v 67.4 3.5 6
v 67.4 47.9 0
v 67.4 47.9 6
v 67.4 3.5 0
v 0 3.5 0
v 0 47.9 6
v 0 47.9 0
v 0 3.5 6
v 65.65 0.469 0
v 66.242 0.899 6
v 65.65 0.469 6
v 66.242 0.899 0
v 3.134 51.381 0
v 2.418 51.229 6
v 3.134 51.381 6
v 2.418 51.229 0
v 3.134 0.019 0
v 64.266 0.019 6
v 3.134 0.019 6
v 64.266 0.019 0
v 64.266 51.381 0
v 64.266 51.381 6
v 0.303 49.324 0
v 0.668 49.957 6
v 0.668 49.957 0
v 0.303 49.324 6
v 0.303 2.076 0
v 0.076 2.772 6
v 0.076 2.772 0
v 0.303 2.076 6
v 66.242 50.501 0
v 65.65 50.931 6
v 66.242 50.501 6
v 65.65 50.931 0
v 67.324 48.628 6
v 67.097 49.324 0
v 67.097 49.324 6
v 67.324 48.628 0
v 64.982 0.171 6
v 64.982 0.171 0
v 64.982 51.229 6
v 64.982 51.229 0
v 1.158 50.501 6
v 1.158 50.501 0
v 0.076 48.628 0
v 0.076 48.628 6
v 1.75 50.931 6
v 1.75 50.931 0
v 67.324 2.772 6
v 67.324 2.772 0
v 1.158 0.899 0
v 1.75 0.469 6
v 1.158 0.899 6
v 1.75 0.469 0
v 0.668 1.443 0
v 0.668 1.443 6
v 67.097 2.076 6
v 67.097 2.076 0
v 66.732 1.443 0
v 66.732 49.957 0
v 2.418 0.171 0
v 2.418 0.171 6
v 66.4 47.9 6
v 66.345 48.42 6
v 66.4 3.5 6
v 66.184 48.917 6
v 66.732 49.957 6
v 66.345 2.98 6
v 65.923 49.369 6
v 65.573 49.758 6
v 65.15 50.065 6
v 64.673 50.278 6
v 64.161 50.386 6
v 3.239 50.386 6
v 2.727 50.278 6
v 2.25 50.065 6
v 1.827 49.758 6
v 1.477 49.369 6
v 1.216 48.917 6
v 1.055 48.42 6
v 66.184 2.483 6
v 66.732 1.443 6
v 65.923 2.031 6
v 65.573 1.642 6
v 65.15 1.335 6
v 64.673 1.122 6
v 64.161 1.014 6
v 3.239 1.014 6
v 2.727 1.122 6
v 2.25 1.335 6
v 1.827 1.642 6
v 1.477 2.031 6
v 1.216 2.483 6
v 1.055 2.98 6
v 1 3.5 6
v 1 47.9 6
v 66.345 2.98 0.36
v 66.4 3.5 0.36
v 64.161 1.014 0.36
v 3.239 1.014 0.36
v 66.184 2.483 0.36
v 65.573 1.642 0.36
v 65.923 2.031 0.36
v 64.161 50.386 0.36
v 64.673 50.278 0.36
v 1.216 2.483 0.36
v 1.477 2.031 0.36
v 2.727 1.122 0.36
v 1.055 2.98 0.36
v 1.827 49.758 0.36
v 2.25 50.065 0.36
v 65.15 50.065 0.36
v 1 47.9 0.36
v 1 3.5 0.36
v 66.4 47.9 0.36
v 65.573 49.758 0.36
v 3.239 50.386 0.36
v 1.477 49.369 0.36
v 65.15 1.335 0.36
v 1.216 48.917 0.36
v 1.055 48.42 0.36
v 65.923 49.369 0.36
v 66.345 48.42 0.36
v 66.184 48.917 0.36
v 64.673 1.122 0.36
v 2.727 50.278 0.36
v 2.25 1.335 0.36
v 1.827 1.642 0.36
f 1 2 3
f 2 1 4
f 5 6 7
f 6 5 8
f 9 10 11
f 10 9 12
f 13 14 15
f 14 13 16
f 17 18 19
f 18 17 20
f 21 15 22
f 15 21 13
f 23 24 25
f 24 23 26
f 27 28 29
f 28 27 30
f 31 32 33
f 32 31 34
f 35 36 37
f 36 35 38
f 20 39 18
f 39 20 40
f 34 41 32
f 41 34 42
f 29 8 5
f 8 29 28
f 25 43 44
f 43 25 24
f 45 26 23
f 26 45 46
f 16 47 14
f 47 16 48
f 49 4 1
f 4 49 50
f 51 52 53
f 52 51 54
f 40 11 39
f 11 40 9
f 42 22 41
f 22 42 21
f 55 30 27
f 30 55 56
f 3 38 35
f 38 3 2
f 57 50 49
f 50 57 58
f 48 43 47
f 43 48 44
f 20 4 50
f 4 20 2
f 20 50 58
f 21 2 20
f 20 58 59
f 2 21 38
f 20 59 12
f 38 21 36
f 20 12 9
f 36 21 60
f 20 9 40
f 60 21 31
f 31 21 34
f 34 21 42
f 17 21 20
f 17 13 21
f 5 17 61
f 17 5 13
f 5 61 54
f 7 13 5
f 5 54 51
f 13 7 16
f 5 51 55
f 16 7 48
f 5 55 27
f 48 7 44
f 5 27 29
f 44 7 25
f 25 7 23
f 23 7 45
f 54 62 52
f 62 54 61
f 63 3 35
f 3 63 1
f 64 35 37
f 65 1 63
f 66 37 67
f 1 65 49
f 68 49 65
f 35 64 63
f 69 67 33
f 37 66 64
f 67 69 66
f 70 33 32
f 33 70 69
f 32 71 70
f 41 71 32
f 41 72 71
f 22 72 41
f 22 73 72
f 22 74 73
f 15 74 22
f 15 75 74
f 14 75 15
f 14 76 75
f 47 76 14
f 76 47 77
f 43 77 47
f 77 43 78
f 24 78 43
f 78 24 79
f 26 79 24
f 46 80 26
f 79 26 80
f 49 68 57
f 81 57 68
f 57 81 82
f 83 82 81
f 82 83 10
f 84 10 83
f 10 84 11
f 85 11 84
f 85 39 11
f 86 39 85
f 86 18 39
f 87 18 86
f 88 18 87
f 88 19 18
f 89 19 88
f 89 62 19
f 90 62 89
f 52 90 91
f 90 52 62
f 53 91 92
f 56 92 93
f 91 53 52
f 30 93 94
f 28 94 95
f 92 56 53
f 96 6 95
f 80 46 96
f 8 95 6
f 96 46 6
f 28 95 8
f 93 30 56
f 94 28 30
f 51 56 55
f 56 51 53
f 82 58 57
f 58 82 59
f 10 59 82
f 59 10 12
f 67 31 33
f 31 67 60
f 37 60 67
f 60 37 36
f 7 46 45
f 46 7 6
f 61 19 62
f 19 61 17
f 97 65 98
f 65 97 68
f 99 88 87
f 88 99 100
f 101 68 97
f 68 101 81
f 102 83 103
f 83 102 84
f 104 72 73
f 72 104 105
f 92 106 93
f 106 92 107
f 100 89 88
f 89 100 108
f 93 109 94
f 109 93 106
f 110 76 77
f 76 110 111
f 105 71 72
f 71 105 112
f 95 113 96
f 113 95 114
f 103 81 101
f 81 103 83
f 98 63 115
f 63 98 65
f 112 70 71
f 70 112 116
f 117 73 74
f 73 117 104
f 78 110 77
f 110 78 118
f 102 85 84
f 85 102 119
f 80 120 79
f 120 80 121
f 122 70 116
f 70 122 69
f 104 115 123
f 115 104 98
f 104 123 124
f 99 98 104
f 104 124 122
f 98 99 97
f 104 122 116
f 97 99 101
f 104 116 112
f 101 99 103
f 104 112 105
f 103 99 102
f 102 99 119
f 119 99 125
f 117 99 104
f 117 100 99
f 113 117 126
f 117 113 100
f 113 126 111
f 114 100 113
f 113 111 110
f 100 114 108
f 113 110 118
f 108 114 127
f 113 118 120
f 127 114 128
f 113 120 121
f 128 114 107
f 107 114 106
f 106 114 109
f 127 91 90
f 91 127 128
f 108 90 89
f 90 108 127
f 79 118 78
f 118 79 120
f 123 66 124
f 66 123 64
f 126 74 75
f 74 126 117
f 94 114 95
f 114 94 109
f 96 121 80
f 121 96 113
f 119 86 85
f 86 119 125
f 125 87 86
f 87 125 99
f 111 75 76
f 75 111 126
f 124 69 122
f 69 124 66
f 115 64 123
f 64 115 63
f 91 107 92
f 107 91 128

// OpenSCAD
$fn = 30;


tp_h = 1.6;
tp_w = 65.4;
tp_d = 49.4;
tp_r = 2.5;
overlay_h = 0.36;

wall_t = 1;
plate_t = 0.6;

box_h = 6;
box_w = tp_w + 2*wall_t;
box_d = tp_d + 2*wall_t;
box_r = tp_r + wall_t;

module rounded_cube(x, y, z, r) {
    hull() {
        translate([r, r, 0])
        cylinder(r=r, h=z);
        translate([x-r, r, 0])
        cylinder(r=r, h=z);
        translate([x-r, y-r, 0])
        cylinder(r=r, h=z);
        translate([r, y-r, 0])
        cylinder(r=r, h=z);
    }
}


module touchpad_overlay() {
    difference() {
        rounded_cube(box_w, box_d, box_h, box_r);
        translate([wall_t, wall_t, overlay_h])
            rounded_cube(tp_w, tp_d, box_h, tp_r);
    }
}

touchpad_overlay();
